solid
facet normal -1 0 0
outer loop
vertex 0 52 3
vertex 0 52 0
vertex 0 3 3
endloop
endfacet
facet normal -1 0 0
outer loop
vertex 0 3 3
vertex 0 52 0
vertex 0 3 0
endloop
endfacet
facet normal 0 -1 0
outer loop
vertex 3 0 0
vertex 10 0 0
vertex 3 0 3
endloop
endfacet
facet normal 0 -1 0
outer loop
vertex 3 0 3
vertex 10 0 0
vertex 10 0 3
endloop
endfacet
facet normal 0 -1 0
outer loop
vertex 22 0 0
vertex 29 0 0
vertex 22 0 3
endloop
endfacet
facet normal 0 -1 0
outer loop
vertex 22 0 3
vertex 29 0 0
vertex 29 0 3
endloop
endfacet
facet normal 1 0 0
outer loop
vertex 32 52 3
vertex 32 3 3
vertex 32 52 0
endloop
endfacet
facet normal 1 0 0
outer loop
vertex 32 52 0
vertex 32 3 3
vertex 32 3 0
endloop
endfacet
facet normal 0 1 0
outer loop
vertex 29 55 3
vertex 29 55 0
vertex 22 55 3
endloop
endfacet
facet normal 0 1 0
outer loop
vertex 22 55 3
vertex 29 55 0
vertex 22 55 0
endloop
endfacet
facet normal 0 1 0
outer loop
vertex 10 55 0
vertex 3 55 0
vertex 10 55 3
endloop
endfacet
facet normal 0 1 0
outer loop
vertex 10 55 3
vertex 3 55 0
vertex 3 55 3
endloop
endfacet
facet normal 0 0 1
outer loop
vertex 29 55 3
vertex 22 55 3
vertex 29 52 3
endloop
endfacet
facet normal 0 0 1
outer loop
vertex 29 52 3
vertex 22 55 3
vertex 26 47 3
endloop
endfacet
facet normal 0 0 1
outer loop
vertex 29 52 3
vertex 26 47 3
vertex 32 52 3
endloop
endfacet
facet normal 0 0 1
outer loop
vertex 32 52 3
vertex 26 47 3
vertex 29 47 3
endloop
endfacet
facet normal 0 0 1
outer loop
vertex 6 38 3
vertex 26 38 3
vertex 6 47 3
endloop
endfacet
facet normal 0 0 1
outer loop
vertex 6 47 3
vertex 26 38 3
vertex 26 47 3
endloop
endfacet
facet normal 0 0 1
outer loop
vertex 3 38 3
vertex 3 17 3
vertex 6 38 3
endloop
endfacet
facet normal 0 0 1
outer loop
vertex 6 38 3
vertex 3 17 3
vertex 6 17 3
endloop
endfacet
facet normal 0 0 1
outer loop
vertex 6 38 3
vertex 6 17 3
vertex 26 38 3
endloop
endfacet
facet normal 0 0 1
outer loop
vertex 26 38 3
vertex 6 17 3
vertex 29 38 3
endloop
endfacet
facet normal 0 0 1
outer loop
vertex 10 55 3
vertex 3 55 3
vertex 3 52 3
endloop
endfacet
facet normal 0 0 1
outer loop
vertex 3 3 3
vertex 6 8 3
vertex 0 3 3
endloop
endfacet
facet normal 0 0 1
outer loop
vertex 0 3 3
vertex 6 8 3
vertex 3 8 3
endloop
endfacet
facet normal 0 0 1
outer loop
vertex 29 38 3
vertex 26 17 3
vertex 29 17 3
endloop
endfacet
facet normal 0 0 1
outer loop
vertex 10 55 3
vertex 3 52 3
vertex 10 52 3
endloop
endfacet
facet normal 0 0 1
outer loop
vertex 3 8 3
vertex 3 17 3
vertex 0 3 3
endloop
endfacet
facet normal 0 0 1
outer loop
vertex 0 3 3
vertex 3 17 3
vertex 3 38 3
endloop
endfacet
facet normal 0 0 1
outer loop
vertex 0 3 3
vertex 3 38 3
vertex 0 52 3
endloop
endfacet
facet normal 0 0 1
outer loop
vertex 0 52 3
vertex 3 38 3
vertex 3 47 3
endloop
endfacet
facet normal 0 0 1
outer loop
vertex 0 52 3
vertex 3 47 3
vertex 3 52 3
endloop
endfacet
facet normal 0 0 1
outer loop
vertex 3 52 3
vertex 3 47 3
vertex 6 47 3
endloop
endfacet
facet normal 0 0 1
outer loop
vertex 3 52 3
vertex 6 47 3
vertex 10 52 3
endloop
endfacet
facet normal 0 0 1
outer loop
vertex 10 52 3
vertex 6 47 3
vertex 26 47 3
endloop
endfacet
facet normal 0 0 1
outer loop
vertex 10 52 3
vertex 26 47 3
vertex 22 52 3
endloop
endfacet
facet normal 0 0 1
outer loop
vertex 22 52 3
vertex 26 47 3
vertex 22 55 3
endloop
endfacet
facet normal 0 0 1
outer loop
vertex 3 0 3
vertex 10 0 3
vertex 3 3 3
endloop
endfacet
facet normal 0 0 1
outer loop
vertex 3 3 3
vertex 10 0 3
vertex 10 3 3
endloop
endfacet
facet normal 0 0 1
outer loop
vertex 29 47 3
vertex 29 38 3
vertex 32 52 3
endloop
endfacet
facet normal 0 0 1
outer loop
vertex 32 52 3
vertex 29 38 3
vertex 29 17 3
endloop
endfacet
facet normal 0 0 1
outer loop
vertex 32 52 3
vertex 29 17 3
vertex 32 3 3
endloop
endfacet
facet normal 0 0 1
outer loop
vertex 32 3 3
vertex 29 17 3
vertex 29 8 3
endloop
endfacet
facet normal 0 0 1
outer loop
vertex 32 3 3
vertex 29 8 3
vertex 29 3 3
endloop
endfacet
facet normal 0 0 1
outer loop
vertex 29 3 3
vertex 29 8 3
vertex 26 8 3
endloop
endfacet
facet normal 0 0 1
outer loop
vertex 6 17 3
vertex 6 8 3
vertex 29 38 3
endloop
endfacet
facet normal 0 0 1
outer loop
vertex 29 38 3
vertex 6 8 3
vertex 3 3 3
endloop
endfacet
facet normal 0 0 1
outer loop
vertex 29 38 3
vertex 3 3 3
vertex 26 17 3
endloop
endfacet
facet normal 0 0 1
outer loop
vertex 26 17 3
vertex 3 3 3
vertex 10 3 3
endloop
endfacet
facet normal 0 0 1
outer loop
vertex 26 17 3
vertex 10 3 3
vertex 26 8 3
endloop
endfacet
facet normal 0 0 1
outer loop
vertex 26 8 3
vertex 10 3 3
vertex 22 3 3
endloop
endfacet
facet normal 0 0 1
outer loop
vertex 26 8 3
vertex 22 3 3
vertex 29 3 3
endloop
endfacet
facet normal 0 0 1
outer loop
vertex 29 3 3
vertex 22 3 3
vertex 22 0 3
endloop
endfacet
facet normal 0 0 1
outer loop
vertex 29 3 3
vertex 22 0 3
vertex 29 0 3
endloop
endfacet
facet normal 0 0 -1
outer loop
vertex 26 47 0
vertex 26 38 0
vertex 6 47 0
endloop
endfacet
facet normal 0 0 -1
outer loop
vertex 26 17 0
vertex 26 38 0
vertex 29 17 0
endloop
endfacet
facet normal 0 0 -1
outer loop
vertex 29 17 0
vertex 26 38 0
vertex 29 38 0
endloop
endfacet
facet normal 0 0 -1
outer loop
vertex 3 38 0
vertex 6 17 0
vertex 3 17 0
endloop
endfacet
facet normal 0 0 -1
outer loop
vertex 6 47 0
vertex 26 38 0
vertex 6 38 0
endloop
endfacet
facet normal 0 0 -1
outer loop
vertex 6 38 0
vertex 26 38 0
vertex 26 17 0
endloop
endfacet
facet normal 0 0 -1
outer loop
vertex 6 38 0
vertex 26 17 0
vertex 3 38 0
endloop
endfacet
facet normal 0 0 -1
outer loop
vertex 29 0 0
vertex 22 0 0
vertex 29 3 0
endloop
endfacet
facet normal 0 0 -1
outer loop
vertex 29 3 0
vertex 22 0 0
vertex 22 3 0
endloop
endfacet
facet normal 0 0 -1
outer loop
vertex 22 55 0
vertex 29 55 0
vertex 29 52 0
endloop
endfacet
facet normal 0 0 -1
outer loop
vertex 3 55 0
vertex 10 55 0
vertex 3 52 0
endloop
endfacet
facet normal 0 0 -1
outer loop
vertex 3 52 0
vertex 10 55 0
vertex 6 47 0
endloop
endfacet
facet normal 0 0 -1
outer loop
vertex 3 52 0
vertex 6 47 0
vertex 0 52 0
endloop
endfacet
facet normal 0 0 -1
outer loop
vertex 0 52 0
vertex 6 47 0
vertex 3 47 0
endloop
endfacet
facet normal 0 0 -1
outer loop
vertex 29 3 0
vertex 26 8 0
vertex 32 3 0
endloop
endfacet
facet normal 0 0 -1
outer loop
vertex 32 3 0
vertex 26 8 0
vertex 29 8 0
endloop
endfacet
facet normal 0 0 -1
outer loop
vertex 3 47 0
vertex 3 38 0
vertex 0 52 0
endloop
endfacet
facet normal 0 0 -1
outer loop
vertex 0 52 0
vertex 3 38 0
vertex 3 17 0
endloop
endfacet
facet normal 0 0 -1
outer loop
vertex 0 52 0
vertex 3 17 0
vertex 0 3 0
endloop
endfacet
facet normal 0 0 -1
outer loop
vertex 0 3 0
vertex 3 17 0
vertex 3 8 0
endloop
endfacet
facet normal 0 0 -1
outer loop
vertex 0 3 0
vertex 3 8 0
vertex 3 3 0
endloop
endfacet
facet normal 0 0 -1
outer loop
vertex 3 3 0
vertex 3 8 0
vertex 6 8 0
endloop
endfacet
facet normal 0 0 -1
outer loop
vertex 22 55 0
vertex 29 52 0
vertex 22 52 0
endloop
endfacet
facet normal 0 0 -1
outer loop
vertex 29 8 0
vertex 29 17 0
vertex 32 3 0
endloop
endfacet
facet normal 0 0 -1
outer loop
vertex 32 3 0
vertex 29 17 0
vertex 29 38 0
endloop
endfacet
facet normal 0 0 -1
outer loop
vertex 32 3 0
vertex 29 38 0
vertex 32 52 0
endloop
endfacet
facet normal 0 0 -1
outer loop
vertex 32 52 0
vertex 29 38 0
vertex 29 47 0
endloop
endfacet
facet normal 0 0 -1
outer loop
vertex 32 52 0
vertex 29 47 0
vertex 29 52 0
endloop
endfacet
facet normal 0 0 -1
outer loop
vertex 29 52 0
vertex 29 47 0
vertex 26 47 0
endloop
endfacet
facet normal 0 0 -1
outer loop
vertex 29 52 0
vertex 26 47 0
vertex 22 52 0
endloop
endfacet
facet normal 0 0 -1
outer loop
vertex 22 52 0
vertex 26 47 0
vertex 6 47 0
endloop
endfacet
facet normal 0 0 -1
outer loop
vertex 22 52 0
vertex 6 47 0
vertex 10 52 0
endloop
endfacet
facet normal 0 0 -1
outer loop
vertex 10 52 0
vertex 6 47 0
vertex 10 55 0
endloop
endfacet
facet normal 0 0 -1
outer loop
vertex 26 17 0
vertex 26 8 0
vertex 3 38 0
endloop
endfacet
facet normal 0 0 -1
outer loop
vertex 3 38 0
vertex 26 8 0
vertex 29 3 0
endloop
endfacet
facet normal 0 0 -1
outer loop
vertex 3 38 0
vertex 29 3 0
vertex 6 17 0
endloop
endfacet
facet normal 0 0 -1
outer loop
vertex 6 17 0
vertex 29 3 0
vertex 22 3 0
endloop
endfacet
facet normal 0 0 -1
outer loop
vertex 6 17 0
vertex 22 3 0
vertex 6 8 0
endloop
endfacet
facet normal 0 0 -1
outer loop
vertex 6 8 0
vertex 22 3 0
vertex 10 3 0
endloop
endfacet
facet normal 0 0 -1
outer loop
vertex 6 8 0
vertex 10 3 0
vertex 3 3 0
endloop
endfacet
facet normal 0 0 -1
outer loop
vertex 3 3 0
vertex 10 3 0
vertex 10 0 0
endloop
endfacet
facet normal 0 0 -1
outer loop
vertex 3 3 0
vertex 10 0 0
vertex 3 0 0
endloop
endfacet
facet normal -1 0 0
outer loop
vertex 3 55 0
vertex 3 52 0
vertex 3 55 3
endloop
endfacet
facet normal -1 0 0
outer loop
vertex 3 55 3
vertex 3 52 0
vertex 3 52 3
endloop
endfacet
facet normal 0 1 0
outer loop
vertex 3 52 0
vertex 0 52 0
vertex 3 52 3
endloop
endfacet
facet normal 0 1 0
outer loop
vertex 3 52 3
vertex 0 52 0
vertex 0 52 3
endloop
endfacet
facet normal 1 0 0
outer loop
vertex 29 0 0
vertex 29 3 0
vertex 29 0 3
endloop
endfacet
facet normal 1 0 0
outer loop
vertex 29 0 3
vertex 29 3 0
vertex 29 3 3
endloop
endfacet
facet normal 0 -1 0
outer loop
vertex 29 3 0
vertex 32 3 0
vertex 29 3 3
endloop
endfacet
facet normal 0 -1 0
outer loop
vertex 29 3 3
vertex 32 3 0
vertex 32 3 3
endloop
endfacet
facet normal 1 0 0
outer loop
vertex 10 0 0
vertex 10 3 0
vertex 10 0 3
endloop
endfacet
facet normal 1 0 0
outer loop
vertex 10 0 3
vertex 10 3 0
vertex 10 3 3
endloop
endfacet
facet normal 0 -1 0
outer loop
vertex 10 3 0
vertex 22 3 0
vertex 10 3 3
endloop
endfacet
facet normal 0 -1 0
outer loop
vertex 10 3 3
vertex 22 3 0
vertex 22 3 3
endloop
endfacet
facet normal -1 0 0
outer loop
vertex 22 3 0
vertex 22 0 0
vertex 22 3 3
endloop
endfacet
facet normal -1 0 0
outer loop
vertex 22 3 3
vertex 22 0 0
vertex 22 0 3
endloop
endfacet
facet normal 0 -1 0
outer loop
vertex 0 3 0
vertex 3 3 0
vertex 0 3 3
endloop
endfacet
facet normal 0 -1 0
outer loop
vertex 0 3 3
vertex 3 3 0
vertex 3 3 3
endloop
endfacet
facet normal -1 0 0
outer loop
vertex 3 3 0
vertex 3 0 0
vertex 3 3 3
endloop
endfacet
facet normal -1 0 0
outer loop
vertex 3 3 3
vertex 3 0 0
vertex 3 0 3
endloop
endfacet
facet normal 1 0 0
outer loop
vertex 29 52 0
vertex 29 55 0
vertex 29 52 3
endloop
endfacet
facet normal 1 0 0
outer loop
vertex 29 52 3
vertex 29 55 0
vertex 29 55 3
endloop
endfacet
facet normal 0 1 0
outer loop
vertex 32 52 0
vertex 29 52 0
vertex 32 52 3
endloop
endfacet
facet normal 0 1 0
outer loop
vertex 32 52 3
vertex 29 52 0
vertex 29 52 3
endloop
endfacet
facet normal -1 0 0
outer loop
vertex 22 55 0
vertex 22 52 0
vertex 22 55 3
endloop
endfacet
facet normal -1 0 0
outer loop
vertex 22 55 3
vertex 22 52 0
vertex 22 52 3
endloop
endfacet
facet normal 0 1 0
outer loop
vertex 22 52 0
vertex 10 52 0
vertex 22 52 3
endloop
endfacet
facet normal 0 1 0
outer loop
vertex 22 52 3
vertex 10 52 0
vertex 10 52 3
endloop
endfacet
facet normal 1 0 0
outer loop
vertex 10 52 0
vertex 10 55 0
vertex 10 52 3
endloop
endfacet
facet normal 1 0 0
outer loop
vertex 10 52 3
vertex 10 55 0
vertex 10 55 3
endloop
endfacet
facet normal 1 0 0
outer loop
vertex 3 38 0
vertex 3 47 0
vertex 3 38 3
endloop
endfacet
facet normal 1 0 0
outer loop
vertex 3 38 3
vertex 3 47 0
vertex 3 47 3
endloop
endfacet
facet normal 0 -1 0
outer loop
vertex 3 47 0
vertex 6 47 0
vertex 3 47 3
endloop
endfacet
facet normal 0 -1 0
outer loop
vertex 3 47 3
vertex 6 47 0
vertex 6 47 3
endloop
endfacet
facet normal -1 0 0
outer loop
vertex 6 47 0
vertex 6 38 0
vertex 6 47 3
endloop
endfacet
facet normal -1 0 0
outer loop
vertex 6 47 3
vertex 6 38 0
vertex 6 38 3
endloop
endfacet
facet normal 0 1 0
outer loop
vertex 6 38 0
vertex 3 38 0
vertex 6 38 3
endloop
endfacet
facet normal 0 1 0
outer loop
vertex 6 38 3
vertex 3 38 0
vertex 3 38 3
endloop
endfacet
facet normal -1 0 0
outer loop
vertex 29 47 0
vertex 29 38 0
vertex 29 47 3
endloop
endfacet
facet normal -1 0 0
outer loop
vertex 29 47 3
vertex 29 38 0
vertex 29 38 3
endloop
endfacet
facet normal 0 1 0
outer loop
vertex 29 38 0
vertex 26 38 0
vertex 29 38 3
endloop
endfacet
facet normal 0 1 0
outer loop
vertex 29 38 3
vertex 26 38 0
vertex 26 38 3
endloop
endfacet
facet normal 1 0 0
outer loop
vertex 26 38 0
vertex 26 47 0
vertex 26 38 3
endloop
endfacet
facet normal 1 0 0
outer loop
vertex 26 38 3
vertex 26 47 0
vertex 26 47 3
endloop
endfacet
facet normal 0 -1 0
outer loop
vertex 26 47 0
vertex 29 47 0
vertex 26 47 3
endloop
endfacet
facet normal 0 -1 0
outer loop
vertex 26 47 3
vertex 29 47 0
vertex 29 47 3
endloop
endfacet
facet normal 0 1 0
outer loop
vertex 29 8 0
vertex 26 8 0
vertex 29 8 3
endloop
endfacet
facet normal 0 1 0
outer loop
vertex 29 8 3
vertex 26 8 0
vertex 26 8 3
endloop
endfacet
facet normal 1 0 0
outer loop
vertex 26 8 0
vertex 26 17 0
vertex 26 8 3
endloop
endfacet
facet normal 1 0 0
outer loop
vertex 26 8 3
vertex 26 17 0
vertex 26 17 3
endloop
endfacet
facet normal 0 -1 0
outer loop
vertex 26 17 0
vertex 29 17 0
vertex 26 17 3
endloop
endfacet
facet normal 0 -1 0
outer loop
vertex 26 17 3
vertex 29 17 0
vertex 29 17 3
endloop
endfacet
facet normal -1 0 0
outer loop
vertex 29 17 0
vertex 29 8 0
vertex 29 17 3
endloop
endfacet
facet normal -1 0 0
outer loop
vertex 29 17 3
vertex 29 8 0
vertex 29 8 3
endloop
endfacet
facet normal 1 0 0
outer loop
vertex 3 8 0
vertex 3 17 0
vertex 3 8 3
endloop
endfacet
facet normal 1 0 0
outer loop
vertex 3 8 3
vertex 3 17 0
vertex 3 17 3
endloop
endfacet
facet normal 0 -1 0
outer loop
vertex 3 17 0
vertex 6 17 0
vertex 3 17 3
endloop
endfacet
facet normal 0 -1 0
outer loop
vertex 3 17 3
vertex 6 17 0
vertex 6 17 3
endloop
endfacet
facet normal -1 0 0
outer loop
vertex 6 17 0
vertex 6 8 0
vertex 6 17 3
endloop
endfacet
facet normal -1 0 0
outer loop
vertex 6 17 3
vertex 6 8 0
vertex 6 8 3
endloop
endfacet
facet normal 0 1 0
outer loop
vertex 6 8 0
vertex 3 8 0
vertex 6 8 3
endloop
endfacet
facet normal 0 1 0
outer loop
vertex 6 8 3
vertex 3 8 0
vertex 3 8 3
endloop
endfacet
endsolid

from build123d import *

# Parameters (mm, degrees)
SKETCH_1_W          = 32
SKETCH_1_H          = 55
EXTRUDE_1_DEPTH     = 3
SKETCH_2_W          = 3
SKETCH_2_H          = 3
SKETCH_2_W_2        = 12
CUT_EXTRUDE_1_DEPTH = 4
SKETCH_3_W          = 3
SKETCH_3_H          = 9
CUT_EXTRUDE_2_DEPTH = 4


with BuildPart() as part:
    # 스케치1 → 보스-돌출1 (new body)
    with BuildSketch(Plane.XY):
        with Locations((16, 27.5)):
            Rectangle(SKETCH_1_W, SKETCH_1_H)
    extrude(amount=EXTRUDE_1_DEPTH)

    # 스케치2 → 컷-돌출1 (cut, through all)
    with BuildSketch(Plane.XY.offset(3)):
        with Locations((1.5, 53.5)):
            Rectangle(SKETCH_2_W, SKETCH_2_H)
        with Locations((16, 53.5)):
            Rectangle(SKETCH_2_W_2, SKETCH_2_H)
        with Locations((30.5, 53.5)):
            Rectangle(SKETCH_2_W, SKETCH_2_H)
        with Locations((1.5, 1.5)):
            Rectangle(SKETCH_2_W, SKETCH_2_H)
        with Locations((16, 1.5)):
            Rectangle(SKETCH_2_W_2, SKETCH_2_H)
        with Locations((30.5, 1.5)):
            Rectangle(SKETCH_2_W, SKETCH_2_H)
    extrude(amount=-CUT_EXTRUDE_1_DEPTH, mode=Mode.SUBTRACT)

    # 스케치3 → 컷-돌출2 (cut, through all)
    with BuildSketch(Plane.XY.offset(3)):
        with Locations((4.5, 42.5)):
            Rectangle(SKETCH_3_W, SKETCH_3_H)
        with Locations((27.5, 42.5)):
            Rectangle(SKETCH_3_W, SKETCH_3_H)
        with Locations((27.5, 12.5)):
            Rectangle(SKETCH_3_W, SKETCH_3_H)
        with Locations((4.5, 12.5)):
            Rectangle(SKETCH_3_W, SKETCH_3_H)
    extrude(amount=-CUT_EXTRUDE_2_DEPTH, mode=Mode.SUBTRACT)


solid = part.part
